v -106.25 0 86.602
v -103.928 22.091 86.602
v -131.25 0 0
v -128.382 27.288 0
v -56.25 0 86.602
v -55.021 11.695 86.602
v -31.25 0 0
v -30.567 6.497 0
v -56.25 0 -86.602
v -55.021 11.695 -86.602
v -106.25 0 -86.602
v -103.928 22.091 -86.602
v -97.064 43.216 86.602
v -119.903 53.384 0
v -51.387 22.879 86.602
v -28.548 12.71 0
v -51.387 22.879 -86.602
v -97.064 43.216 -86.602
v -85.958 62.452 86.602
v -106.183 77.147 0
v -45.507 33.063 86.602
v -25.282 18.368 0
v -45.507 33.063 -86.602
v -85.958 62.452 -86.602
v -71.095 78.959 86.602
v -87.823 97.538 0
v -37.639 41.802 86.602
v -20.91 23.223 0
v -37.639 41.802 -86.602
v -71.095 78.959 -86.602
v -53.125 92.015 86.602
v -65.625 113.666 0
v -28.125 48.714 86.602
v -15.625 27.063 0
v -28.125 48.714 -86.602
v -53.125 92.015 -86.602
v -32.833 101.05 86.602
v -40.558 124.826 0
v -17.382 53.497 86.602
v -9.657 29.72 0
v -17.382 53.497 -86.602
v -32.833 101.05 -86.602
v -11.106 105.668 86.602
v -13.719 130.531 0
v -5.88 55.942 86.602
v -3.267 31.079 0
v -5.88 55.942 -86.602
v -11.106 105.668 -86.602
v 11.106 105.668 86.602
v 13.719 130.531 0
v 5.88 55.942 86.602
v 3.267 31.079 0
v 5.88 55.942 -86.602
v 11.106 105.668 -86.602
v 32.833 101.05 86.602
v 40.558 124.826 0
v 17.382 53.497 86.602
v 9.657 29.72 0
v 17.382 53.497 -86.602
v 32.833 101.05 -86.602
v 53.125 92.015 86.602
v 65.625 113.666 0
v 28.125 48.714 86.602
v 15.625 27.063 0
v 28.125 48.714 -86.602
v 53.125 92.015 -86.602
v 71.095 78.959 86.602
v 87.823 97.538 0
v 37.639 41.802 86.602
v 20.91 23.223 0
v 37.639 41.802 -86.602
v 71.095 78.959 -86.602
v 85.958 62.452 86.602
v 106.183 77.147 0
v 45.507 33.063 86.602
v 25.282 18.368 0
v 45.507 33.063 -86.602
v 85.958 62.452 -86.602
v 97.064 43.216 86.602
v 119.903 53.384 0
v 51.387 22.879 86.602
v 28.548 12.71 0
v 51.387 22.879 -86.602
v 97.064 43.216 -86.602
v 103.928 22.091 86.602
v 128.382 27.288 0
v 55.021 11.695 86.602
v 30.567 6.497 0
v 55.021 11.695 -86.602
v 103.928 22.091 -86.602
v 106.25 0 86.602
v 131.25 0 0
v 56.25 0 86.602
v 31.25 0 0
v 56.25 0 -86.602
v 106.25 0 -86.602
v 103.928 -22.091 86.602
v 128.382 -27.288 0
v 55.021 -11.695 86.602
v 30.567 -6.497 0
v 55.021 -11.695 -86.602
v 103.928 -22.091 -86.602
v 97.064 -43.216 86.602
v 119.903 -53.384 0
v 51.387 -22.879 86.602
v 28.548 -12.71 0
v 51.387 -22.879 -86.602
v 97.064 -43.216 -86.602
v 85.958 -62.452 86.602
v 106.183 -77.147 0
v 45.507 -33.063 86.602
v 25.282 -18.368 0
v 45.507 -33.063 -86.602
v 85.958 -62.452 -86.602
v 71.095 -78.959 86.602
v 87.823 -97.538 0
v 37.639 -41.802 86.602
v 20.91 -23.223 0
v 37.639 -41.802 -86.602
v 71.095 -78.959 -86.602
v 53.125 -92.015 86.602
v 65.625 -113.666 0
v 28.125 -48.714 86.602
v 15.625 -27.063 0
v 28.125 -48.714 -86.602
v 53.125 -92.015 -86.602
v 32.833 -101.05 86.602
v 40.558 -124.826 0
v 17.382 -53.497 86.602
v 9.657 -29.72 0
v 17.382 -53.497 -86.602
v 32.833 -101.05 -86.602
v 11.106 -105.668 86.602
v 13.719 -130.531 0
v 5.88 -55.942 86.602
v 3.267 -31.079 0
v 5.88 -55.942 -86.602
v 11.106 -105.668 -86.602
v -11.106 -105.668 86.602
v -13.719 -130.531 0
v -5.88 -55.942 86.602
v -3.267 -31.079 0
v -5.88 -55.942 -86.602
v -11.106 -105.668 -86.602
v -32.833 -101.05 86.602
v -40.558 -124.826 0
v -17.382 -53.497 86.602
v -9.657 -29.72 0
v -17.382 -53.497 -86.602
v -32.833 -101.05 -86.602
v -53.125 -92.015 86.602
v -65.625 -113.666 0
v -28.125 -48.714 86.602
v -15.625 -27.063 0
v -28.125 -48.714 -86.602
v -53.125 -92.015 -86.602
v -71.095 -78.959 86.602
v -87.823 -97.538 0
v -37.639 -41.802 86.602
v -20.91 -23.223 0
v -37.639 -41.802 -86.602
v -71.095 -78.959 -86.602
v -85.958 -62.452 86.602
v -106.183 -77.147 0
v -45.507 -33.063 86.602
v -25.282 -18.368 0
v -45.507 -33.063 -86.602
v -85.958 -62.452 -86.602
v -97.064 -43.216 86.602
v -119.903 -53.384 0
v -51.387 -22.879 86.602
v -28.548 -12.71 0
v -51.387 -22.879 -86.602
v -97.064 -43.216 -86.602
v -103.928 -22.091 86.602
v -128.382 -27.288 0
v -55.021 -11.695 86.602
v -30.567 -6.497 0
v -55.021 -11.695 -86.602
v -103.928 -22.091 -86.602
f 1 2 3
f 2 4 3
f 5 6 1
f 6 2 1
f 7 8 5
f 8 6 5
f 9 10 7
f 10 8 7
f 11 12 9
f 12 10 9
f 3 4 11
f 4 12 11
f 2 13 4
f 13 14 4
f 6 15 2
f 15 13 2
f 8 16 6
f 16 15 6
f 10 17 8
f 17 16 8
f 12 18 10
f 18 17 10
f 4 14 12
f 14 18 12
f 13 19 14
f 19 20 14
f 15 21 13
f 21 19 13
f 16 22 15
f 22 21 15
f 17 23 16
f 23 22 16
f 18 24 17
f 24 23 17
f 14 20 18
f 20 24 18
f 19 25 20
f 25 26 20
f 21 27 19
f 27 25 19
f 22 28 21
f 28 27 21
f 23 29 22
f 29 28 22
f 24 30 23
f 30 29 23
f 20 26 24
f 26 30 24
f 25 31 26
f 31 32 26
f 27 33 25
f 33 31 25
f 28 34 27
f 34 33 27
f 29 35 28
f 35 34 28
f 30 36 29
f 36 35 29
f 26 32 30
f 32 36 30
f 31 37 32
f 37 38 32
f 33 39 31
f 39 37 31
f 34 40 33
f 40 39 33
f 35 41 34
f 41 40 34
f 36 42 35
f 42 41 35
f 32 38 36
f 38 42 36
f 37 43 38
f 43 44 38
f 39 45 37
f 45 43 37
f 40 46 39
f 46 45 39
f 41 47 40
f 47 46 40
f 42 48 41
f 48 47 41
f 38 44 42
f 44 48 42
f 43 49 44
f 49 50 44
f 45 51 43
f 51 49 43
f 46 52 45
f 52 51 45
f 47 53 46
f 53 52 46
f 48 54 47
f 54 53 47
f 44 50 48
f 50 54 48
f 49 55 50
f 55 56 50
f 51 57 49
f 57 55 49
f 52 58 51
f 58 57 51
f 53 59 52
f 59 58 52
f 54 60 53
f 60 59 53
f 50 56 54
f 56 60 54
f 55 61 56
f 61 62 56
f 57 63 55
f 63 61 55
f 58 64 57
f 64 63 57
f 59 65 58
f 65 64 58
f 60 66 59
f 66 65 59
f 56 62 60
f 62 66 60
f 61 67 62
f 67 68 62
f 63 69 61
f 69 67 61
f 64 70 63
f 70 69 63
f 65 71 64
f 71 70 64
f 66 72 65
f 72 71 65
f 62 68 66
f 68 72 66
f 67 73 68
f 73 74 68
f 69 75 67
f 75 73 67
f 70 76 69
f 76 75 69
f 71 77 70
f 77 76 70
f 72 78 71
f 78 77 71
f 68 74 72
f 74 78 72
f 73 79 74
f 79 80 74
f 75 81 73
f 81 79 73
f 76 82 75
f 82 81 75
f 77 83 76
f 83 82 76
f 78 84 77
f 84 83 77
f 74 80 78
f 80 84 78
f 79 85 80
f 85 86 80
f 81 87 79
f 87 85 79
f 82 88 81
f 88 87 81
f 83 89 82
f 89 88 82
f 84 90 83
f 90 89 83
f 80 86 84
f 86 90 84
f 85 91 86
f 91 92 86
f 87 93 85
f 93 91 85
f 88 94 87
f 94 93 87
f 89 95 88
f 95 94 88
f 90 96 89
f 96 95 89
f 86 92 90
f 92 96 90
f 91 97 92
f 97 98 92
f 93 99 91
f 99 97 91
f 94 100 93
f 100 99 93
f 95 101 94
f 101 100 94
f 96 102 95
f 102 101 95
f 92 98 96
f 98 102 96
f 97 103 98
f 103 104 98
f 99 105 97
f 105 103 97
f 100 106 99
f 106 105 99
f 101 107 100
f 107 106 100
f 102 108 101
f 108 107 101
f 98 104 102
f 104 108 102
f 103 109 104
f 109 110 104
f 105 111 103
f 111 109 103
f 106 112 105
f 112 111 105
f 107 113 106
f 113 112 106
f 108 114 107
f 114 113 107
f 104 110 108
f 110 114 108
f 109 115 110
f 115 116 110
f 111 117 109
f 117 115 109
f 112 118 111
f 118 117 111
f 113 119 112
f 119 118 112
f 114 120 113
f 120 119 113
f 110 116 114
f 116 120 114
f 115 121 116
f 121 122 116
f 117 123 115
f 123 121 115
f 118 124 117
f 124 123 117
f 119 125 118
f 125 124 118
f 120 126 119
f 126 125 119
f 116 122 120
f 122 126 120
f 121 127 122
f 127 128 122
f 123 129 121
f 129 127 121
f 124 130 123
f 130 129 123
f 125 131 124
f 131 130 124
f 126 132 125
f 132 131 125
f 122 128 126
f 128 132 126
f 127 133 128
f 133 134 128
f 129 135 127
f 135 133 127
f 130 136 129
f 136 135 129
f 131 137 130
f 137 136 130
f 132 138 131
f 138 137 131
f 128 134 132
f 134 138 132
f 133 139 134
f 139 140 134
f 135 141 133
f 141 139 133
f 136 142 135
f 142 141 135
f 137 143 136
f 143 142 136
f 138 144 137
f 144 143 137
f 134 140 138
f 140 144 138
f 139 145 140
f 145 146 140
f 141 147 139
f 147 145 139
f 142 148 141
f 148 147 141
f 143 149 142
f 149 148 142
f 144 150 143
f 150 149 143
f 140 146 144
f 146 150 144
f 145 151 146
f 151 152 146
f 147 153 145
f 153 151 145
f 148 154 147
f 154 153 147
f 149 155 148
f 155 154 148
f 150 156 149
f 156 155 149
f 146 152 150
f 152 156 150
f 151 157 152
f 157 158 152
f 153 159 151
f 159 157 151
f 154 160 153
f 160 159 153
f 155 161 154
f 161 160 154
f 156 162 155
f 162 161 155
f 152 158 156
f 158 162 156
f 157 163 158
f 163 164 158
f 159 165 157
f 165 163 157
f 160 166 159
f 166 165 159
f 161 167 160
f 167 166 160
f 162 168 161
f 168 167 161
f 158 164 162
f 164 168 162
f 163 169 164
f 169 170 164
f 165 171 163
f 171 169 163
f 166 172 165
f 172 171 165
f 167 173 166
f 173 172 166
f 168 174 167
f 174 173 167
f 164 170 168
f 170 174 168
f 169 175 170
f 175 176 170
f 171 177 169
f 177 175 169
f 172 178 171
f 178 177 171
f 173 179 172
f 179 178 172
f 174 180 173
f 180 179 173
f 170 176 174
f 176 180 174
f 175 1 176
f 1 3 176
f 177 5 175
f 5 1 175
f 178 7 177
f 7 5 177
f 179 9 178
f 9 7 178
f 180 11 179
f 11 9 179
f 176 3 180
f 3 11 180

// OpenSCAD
radius = 20;

//difference() {
//  
//    linear_extrude(height = 200*(0.15), slices = 60) {
//      circle(radius, $fn = 8);
//    }
//
//    translate([0,0,-10]) linear_extrude(height = 300*(0.15), slices = 60) {
//         circle(radius/2, spacing, levels);
//    }
// 
//}

radius = 5 ;
//union() {
//rotate_extrude(convexity = 10) 
//    translate([radius*radius*2.5, 0, 0]) 
//        scale([radius*2,radius*2,1]) 
//            circle(r = radius, $fn=12);
//
//    linear_extrude(100) square([3.14*radius*radius*2.5,radius*radius*2.5*3.14], center=true);
//}


    rotate_extrude(convexity = 10) 
        translate([radius*radius*3.25, 0, 0]) 
            scale([radius*2,radius*4,1]) 
                circle(r = radius, $fn=6);
